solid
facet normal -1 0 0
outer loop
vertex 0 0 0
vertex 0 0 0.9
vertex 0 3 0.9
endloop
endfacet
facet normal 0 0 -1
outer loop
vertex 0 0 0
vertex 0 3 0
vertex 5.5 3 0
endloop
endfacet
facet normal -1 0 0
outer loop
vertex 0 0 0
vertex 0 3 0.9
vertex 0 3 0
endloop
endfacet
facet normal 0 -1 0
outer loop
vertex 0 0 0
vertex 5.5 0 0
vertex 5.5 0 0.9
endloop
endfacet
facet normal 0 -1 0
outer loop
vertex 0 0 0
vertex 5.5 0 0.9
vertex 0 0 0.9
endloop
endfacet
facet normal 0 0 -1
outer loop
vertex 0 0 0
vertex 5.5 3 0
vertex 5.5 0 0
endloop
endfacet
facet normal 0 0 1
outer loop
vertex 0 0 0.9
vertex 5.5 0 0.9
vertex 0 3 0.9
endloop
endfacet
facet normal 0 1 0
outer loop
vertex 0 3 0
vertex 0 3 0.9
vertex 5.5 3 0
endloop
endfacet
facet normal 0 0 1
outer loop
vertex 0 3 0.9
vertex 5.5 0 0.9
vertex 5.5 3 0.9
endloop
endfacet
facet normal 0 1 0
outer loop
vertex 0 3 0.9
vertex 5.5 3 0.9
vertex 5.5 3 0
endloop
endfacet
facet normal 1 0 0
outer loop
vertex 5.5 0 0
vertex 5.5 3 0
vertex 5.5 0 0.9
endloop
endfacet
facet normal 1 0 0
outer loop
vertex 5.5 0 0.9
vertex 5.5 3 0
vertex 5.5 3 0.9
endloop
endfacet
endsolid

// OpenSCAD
/* Warning, this is a very basic generator with a lot of approximation 
input data : [VDFN, QDB, 5.5x3x0.9mm, 16, , B, C04-21363B]
generated by com.zoubworld.electronics.cad.model3d.Basic
Date : Sun Feb 15 10:50:49 CET 2026
*/

//body
color("black")
translate([0,0,0])
cube([5.5,3.0,0.9], center=false);
